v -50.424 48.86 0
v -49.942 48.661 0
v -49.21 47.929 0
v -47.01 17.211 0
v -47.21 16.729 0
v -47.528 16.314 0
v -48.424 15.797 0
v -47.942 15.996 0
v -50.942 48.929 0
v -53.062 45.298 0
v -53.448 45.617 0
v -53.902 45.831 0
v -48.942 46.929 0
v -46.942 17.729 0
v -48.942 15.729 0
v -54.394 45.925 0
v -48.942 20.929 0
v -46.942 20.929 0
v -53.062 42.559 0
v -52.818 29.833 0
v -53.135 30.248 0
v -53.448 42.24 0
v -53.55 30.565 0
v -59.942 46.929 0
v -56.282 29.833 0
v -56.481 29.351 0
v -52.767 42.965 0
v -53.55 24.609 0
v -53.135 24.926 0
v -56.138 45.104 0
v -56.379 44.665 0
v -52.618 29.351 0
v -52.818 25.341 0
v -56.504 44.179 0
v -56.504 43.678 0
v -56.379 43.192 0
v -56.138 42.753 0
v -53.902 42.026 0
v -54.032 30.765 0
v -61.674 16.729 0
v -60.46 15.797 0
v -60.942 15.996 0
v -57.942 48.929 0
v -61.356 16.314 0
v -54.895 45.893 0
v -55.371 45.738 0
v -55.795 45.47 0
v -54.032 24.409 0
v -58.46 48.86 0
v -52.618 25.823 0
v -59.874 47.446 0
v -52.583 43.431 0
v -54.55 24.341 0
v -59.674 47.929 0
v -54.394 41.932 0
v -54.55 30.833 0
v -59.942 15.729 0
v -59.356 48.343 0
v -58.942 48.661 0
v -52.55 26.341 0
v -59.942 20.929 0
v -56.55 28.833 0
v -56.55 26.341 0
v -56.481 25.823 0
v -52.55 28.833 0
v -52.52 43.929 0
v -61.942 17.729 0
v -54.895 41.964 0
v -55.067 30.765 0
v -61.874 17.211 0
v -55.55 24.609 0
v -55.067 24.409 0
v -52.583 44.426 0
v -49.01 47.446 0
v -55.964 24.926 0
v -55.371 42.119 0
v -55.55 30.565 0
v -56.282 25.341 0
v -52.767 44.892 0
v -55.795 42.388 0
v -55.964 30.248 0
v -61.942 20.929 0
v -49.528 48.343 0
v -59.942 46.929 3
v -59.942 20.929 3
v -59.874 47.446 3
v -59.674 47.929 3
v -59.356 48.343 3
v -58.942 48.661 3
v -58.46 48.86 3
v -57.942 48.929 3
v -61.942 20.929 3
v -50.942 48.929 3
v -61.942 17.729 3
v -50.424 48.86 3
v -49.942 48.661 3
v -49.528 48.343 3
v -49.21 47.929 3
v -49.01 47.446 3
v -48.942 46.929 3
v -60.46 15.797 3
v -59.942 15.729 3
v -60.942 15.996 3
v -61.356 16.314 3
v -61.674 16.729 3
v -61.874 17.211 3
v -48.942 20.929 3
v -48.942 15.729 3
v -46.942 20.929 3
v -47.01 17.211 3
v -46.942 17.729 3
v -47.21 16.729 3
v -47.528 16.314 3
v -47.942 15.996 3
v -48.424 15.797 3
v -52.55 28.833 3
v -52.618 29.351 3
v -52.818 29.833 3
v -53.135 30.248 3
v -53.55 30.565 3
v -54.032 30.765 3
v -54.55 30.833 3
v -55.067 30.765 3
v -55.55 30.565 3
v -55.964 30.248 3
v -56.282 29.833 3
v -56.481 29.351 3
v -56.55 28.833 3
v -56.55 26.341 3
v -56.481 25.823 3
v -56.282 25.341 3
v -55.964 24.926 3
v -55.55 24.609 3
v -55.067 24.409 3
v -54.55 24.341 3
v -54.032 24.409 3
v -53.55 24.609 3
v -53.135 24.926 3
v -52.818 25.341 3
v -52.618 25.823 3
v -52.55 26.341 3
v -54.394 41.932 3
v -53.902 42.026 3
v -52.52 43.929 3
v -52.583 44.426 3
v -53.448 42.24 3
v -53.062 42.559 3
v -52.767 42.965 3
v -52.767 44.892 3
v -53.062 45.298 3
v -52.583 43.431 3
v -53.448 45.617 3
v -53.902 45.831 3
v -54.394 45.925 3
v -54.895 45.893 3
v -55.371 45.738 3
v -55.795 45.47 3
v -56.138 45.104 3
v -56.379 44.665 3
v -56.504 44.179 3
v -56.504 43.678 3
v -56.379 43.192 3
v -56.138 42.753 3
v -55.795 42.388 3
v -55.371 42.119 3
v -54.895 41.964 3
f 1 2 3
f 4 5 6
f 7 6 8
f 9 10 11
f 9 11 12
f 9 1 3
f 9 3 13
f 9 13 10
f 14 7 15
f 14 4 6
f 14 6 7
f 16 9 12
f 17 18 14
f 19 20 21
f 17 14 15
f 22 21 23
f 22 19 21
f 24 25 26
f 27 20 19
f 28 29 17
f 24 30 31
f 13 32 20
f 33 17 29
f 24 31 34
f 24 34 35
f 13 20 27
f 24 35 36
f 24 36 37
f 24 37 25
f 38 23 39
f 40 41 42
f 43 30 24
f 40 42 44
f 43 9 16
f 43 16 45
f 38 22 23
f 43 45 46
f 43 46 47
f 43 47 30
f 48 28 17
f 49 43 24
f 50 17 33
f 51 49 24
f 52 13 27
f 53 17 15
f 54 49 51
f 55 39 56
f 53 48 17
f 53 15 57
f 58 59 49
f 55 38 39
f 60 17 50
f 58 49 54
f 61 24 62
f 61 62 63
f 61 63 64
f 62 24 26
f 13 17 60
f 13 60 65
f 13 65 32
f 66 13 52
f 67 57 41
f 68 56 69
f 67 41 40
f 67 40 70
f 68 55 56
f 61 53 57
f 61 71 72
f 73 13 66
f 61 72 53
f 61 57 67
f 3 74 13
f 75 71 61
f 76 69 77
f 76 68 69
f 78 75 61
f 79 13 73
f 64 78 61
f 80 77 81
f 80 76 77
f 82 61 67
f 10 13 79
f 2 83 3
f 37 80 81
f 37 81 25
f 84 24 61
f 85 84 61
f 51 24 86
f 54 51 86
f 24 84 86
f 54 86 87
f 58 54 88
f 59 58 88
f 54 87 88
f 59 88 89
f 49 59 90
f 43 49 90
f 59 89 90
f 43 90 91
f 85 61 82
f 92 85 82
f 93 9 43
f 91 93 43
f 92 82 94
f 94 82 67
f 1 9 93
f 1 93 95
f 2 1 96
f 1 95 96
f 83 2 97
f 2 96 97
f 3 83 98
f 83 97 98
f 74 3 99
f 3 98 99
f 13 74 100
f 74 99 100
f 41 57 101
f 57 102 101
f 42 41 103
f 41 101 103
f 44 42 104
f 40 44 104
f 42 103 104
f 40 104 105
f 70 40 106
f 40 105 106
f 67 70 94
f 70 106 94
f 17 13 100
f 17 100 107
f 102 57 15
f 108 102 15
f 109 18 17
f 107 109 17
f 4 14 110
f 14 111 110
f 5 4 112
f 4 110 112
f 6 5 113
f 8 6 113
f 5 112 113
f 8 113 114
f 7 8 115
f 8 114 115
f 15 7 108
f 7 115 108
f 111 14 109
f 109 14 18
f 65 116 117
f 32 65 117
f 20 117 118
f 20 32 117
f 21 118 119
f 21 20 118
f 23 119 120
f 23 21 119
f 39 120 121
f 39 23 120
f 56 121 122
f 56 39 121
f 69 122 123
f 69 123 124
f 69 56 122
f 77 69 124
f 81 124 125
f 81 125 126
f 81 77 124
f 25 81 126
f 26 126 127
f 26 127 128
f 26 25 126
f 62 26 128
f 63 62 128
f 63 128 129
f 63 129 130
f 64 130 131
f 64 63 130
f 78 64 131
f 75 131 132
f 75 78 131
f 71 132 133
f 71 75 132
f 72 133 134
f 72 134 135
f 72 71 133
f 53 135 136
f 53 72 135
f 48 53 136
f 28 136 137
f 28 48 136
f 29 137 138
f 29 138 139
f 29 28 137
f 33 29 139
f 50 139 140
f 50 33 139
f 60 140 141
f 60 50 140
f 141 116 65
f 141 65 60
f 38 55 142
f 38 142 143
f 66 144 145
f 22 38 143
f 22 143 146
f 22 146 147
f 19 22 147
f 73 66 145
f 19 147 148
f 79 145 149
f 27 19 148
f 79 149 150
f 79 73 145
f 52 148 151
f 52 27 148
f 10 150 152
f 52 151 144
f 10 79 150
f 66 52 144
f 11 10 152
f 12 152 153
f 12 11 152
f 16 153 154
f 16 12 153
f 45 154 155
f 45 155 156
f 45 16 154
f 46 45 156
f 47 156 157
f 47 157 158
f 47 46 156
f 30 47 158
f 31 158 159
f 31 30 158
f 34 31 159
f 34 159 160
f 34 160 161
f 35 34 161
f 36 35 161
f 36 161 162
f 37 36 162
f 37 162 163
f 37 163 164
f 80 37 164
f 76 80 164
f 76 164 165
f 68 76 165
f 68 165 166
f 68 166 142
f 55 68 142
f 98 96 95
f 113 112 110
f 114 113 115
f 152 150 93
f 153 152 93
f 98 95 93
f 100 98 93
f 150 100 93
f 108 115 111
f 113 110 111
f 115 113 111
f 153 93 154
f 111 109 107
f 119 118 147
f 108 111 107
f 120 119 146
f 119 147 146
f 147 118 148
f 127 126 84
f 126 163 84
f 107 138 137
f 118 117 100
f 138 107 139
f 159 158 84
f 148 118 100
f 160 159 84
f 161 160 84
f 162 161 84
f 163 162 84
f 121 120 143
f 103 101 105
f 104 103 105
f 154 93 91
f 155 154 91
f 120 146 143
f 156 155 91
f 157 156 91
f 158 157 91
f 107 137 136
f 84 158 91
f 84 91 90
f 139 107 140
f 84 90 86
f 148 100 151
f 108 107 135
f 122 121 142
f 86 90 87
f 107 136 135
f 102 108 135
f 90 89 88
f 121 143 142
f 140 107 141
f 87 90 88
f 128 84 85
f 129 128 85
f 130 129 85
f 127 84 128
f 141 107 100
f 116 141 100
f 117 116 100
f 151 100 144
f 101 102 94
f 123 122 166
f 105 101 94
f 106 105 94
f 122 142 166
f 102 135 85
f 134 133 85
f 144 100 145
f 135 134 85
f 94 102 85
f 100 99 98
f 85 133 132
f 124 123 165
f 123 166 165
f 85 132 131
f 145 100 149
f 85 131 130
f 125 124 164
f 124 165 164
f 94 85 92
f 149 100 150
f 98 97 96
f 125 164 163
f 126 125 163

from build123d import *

# Parameters (mm, degrees)
SKETCH_R    = 2
PAD_DEPTH   = 3
FILLET_R    = 2
FILLET001_R = 2
FILLET002_R = 2
FILLET003_R = 2


with BuildPart() as part:
    # Sketch → Pad (new body)
    with BuildSketch(Plane.XY):
        Polygon((-48.942066, 48.928535), (-59.942066, 48.928535), (-59.942066, 20.928535), (-61.942066, 20.928535), (-61.942066, 15.728535), (-46.942066, 15.728535), (-46.942066, 20.928535), (-48.942066, 20.928535), align=None)
        with Locations((-54.519871, 43.928535)):
            Circle(SKETCH_R, mode=Mode.SUBTRACT)
        with BuildLine():
            ThreePointArc((-52.549564, 28.83341), (-54.549564, 30.83341), (-56.549564, 28.83341))
            Line((-56.549564, 28.83341), (-56.549564, 26.340669))
            ThreePointArc((-56.549564, 26.340669), (-54.549564, 24.340669), (-52.549564, 26.340669))
            Line((-52.549564, 28.83341), (-52.549564, 26.340669))
        make_face(mode=Mode.SUBTRACT)
    extrude(amount=PAD_DEPTH)

    # Fillet
    fillet_edges = [part.edges().sort_by_distance(p)[0] for p in [
        (-48.942066, 48.928535, 1.5),
    ]]
    fillet(fillet_edges, radius=FILLET_R)

    # Fillet001
    fillet001_edges = [part.edges().sort_by_distance(p)[0] for p in [
        (-46.942066, 15.728535, 1.5),
    ]]
    fillet(fillet001_edges, radius=FILLET001_R)

    # Fillet002
    fillet002_edges = [part.edges().sort_by_distance(p)[0] for p in [
        (-61.942066, 15.728535, 1.5),
    ]]
    fillet(fillet002_edges, radius=FILLET002_R)

    # Fillet003
    fillet003_edges = [part.edges().sort_by_distance(p)[0] for p in [
        (-59.942066, 48.928535, 1.5),
    ]]
    fillet(fillet003_edges, radius=FILLET003_R)


solid = part.part
